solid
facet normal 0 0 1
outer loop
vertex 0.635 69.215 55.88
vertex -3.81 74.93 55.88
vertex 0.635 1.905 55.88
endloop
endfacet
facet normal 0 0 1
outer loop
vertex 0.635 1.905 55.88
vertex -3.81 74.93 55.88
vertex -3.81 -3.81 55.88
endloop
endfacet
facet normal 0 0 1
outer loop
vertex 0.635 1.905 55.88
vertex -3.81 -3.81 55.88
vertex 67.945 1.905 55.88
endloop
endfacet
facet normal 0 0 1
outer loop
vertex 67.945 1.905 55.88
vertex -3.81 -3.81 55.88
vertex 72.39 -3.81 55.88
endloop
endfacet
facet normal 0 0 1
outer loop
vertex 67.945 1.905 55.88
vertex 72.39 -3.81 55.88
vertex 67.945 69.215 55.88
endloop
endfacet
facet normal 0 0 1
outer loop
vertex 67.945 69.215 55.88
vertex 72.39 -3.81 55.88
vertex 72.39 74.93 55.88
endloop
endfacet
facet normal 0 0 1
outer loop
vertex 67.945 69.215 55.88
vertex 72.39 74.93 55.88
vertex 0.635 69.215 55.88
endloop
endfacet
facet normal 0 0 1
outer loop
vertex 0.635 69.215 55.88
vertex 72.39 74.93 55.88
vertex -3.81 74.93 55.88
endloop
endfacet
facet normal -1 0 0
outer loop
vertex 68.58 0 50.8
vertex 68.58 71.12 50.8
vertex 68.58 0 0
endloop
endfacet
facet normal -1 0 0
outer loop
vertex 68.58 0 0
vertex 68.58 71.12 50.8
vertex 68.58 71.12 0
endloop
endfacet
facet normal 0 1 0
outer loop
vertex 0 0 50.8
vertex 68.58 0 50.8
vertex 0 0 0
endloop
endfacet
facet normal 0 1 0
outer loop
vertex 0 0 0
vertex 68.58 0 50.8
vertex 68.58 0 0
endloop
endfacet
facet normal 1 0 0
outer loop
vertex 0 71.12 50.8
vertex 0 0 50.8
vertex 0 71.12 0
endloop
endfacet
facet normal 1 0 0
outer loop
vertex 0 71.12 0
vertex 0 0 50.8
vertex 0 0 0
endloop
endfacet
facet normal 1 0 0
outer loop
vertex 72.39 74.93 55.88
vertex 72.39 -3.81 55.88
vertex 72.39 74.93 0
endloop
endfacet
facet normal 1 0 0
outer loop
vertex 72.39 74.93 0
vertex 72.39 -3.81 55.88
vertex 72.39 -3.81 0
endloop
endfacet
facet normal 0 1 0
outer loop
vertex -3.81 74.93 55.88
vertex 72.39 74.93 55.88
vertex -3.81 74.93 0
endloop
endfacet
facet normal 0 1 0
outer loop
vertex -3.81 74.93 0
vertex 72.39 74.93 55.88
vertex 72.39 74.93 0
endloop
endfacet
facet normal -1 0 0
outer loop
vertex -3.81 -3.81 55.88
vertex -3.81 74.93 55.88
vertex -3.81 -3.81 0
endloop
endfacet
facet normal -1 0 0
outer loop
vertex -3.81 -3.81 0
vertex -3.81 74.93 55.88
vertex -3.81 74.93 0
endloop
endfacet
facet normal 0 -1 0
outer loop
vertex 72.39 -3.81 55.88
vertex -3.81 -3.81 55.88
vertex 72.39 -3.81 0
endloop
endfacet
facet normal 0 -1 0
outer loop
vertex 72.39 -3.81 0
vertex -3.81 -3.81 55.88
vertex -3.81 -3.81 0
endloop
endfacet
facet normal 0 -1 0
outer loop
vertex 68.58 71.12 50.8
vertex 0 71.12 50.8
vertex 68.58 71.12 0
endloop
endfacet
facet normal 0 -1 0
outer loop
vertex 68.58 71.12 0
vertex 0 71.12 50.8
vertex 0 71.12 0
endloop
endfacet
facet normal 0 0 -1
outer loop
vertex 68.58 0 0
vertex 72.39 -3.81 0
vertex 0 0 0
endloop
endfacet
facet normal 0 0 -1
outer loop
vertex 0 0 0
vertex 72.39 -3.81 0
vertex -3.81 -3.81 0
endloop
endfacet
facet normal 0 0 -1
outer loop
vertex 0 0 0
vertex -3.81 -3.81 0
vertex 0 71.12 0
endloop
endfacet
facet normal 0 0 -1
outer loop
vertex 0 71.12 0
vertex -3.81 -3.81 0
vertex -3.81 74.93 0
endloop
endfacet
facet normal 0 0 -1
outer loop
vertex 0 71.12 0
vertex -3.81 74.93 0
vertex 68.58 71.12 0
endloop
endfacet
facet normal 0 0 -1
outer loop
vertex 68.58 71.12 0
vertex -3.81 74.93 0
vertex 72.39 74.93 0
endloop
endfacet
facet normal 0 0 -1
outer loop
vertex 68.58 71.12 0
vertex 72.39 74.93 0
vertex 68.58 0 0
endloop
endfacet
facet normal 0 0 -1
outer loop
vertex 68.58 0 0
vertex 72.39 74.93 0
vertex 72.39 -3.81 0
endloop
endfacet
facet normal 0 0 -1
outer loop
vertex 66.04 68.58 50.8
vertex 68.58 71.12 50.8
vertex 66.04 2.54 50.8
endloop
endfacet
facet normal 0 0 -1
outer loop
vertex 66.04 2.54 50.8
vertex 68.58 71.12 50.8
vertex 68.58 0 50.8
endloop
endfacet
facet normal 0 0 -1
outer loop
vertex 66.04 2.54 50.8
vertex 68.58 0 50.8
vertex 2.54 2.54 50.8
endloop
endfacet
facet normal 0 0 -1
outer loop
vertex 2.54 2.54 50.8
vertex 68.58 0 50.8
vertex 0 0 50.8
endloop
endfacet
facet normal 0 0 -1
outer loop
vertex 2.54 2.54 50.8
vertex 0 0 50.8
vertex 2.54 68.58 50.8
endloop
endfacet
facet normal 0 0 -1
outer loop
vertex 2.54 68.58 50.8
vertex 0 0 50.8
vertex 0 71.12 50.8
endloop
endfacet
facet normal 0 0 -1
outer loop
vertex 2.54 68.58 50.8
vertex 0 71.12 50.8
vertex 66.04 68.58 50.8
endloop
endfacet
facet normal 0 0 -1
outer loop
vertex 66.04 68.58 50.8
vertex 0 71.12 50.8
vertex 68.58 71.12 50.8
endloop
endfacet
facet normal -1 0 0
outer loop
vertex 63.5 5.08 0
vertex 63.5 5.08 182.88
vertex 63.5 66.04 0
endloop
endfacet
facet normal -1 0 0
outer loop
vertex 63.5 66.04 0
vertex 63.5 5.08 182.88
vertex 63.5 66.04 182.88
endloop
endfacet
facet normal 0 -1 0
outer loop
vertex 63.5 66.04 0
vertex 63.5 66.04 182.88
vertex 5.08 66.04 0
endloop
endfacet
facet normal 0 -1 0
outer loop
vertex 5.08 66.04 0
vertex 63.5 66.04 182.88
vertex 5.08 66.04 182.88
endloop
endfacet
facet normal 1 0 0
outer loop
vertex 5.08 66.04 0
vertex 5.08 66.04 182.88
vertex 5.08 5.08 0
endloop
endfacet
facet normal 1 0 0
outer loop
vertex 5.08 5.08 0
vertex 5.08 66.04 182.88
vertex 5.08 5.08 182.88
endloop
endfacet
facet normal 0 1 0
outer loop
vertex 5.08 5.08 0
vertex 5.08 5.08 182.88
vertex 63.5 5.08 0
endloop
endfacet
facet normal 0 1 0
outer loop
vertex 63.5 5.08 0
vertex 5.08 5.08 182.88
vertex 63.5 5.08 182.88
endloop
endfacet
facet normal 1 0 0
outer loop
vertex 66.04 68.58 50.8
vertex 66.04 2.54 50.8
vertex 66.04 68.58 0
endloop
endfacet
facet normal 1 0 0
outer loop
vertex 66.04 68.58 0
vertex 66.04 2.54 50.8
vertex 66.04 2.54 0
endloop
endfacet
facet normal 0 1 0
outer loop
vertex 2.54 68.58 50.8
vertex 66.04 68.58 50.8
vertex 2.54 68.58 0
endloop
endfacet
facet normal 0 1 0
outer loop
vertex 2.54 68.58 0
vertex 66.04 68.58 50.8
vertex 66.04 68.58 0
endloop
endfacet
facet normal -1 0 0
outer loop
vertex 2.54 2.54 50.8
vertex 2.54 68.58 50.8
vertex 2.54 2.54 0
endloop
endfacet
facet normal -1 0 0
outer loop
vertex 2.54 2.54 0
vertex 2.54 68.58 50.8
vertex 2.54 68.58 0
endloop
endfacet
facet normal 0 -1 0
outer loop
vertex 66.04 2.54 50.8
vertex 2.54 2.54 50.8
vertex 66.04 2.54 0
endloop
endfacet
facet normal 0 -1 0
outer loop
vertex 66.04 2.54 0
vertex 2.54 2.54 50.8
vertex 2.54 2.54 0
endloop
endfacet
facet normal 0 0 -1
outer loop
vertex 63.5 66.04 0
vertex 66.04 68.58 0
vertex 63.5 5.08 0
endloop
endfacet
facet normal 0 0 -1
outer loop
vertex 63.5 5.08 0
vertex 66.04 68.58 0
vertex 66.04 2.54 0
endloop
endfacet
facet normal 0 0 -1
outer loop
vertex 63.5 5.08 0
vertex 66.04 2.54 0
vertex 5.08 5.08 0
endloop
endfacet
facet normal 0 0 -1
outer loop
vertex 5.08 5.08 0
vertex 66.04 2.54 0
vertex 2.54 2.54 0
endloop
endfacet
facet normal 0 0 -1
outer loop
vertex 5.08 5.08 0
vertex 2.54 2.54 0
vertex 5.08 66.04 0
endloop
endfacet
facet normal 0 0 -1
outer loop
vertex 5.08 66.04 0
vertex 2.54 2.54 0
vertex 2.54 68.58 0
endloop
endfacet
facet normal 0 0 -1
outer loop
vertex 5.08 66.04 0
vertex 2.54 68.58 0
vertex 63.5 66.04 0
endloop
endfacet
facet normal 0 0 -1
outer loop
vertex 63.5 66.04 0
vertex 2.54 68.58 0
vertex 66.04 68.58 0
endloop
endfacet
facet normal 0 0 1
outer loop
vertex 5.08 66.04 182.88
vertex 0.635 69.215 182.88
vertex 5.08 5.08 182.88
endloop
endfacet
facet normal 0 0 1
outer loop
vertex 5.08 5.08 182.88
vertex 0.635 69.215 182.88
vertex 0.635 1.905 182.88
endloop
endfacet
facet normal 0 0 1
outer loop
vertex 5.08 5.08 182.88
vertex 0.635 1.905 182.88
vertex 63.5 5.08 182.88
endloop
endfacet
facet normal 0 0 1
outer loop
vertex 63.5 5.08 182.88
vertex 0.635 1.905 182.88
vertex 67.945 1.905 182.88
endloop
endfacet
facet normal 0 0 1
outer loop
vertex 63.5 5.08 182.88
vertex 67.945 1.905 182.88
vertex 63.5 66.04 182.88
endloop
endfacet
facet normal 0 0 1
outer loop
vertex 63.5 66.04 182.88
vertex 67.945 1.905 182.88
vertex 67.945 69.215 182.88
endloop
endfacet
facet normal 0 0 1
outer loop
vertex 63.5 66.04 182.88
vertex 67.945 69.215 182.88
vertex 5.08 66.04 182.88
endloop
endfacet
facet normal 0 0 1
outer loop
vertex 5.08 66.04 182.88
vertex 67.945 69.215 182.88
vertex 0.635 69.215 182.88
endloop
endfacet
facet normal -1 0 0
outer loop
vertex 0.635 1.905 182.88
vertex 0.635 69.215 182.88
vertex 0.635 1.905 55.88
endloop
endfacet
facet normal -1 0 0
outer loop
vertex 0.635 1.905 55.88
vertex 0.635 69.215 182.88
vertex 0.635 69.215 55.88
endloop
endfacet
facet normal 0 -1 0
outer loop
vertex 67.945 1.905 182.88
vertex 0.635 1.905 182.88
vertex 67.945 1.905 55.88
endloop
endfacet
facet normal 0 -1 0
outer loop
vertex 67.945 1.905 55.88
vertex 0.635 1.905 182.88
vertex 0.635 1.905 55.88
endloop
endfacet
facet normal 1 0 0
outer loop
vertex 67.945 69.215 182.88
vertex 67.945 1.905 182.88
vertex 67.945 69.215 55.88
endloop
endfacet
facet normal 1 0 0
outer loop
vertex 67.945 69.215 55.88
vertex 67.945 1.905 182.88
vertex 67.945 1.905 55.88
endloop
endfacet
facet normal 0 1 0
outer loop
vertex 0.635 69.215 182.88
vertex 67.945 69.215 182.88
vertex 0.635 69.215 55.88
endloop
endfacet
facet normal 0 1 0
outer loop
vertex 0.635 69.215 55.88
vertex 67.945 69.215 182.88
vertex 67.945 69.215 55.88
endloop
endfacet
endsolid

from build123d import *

# Parameters (mm, degrees)
SKETCH1_W             = 76.2
SKETCH1_H             = 78.74
SKETCH1_W_2           = 68.58
SKETCH1_H_2           = 71.12
BOSS_EXTRUDE1_DEPTH   = 50.8
SKETCH1_W_3           = 63.5
SKETCH1_H_3           = 66.04
SKETCH1_W_4           = 58.42
SKETCH1_H_4           = 60.96
BOSS_EXTRUDE1_2_DEPTH = 50.8
SKETCH2_W             = 76.2
SKETCH2_H             = 78.74
SKETCH2_W_2           = 58.42
SKETCH2_H_2           = 60.96
BOSS_EXTRUDE2_DEPTH   = 5.08
SKETCH3_W             = 67.31
SKETCH3_H             = 67.31
SKETCH3_W_2           = 58.42
SKETCH3_H_2           = 60.96
BOSS_EXTRUDE3_DEPTH   = 127


with BuildPart() as part:
    # Sketch1 → Boss-Extrude1 (new body)
    with BuildSketch(Plane.XY):
        with Locations((34.29, 35.56)):
            Rectangle(SKETCH1_W, SKETCH1_H)
        with Locations((34.29, 35.56)):
            Rectangle(SKETCH1_W_2, SKETCH1_H_2, mode=Mode.SUBTRACT)
    extrude(amount=BOSS_EXTRUDE1_DEPTH)



with BuildPart() as body_2:
    # Sketch1 → Boss-Extrude1 2 (new body)
    with BuildSketch(Plane.XY):
        with Locations((34.29, 35.56)):
            Rectangle(SKETCH1_W_3, SKETCH1_H_3)
        with Locations((34.29, 35.56)):
            Rectangle(SKETCH1_W_4, SKETCH1_H_4, mode=Mode.SUBTRACT)
    extrude(amount=BOSS_EXTRUDE1_2_DEPTH)


with BuildPart() as part_1:
    add(part.part)

    add(body_2.part)  # Boss-Extrude2 merges body 2
    # Sketch2 → Boss-Extrude2 (add)
    with BuildSketch(Plane.XY.offset(50.8)):
        with Locations((34.29, 35.56)):
            Rectangle(SKETCH2_W, SKETCH2_H)
        with Locations((34.29, 35.56)):
            Rectangle(SKETCH2_W_2, SKETCH2_H_2, mode=Mode.SUBTRACT)
    extrude(amount=BOSS_EXTRUDE2_DEPTH)

    # Sketch3 → Boss-Extrude3 (add)
    with BuildSketch(Plane.XY.offset(55.88)):
        with Locations((34.29, 35.56)):
            Rectangle(SKETCH3_W, SKETCH3_H)
        with Locations((34.29, 35.56)):
            Rectangle(SKETCH3_W_2, SKETCH3_H_2, mode=Mode.SUBTRACT)
    extrude(amount=BOSS_EXTRUDE3_DEPTH)


solid = part_1.part
